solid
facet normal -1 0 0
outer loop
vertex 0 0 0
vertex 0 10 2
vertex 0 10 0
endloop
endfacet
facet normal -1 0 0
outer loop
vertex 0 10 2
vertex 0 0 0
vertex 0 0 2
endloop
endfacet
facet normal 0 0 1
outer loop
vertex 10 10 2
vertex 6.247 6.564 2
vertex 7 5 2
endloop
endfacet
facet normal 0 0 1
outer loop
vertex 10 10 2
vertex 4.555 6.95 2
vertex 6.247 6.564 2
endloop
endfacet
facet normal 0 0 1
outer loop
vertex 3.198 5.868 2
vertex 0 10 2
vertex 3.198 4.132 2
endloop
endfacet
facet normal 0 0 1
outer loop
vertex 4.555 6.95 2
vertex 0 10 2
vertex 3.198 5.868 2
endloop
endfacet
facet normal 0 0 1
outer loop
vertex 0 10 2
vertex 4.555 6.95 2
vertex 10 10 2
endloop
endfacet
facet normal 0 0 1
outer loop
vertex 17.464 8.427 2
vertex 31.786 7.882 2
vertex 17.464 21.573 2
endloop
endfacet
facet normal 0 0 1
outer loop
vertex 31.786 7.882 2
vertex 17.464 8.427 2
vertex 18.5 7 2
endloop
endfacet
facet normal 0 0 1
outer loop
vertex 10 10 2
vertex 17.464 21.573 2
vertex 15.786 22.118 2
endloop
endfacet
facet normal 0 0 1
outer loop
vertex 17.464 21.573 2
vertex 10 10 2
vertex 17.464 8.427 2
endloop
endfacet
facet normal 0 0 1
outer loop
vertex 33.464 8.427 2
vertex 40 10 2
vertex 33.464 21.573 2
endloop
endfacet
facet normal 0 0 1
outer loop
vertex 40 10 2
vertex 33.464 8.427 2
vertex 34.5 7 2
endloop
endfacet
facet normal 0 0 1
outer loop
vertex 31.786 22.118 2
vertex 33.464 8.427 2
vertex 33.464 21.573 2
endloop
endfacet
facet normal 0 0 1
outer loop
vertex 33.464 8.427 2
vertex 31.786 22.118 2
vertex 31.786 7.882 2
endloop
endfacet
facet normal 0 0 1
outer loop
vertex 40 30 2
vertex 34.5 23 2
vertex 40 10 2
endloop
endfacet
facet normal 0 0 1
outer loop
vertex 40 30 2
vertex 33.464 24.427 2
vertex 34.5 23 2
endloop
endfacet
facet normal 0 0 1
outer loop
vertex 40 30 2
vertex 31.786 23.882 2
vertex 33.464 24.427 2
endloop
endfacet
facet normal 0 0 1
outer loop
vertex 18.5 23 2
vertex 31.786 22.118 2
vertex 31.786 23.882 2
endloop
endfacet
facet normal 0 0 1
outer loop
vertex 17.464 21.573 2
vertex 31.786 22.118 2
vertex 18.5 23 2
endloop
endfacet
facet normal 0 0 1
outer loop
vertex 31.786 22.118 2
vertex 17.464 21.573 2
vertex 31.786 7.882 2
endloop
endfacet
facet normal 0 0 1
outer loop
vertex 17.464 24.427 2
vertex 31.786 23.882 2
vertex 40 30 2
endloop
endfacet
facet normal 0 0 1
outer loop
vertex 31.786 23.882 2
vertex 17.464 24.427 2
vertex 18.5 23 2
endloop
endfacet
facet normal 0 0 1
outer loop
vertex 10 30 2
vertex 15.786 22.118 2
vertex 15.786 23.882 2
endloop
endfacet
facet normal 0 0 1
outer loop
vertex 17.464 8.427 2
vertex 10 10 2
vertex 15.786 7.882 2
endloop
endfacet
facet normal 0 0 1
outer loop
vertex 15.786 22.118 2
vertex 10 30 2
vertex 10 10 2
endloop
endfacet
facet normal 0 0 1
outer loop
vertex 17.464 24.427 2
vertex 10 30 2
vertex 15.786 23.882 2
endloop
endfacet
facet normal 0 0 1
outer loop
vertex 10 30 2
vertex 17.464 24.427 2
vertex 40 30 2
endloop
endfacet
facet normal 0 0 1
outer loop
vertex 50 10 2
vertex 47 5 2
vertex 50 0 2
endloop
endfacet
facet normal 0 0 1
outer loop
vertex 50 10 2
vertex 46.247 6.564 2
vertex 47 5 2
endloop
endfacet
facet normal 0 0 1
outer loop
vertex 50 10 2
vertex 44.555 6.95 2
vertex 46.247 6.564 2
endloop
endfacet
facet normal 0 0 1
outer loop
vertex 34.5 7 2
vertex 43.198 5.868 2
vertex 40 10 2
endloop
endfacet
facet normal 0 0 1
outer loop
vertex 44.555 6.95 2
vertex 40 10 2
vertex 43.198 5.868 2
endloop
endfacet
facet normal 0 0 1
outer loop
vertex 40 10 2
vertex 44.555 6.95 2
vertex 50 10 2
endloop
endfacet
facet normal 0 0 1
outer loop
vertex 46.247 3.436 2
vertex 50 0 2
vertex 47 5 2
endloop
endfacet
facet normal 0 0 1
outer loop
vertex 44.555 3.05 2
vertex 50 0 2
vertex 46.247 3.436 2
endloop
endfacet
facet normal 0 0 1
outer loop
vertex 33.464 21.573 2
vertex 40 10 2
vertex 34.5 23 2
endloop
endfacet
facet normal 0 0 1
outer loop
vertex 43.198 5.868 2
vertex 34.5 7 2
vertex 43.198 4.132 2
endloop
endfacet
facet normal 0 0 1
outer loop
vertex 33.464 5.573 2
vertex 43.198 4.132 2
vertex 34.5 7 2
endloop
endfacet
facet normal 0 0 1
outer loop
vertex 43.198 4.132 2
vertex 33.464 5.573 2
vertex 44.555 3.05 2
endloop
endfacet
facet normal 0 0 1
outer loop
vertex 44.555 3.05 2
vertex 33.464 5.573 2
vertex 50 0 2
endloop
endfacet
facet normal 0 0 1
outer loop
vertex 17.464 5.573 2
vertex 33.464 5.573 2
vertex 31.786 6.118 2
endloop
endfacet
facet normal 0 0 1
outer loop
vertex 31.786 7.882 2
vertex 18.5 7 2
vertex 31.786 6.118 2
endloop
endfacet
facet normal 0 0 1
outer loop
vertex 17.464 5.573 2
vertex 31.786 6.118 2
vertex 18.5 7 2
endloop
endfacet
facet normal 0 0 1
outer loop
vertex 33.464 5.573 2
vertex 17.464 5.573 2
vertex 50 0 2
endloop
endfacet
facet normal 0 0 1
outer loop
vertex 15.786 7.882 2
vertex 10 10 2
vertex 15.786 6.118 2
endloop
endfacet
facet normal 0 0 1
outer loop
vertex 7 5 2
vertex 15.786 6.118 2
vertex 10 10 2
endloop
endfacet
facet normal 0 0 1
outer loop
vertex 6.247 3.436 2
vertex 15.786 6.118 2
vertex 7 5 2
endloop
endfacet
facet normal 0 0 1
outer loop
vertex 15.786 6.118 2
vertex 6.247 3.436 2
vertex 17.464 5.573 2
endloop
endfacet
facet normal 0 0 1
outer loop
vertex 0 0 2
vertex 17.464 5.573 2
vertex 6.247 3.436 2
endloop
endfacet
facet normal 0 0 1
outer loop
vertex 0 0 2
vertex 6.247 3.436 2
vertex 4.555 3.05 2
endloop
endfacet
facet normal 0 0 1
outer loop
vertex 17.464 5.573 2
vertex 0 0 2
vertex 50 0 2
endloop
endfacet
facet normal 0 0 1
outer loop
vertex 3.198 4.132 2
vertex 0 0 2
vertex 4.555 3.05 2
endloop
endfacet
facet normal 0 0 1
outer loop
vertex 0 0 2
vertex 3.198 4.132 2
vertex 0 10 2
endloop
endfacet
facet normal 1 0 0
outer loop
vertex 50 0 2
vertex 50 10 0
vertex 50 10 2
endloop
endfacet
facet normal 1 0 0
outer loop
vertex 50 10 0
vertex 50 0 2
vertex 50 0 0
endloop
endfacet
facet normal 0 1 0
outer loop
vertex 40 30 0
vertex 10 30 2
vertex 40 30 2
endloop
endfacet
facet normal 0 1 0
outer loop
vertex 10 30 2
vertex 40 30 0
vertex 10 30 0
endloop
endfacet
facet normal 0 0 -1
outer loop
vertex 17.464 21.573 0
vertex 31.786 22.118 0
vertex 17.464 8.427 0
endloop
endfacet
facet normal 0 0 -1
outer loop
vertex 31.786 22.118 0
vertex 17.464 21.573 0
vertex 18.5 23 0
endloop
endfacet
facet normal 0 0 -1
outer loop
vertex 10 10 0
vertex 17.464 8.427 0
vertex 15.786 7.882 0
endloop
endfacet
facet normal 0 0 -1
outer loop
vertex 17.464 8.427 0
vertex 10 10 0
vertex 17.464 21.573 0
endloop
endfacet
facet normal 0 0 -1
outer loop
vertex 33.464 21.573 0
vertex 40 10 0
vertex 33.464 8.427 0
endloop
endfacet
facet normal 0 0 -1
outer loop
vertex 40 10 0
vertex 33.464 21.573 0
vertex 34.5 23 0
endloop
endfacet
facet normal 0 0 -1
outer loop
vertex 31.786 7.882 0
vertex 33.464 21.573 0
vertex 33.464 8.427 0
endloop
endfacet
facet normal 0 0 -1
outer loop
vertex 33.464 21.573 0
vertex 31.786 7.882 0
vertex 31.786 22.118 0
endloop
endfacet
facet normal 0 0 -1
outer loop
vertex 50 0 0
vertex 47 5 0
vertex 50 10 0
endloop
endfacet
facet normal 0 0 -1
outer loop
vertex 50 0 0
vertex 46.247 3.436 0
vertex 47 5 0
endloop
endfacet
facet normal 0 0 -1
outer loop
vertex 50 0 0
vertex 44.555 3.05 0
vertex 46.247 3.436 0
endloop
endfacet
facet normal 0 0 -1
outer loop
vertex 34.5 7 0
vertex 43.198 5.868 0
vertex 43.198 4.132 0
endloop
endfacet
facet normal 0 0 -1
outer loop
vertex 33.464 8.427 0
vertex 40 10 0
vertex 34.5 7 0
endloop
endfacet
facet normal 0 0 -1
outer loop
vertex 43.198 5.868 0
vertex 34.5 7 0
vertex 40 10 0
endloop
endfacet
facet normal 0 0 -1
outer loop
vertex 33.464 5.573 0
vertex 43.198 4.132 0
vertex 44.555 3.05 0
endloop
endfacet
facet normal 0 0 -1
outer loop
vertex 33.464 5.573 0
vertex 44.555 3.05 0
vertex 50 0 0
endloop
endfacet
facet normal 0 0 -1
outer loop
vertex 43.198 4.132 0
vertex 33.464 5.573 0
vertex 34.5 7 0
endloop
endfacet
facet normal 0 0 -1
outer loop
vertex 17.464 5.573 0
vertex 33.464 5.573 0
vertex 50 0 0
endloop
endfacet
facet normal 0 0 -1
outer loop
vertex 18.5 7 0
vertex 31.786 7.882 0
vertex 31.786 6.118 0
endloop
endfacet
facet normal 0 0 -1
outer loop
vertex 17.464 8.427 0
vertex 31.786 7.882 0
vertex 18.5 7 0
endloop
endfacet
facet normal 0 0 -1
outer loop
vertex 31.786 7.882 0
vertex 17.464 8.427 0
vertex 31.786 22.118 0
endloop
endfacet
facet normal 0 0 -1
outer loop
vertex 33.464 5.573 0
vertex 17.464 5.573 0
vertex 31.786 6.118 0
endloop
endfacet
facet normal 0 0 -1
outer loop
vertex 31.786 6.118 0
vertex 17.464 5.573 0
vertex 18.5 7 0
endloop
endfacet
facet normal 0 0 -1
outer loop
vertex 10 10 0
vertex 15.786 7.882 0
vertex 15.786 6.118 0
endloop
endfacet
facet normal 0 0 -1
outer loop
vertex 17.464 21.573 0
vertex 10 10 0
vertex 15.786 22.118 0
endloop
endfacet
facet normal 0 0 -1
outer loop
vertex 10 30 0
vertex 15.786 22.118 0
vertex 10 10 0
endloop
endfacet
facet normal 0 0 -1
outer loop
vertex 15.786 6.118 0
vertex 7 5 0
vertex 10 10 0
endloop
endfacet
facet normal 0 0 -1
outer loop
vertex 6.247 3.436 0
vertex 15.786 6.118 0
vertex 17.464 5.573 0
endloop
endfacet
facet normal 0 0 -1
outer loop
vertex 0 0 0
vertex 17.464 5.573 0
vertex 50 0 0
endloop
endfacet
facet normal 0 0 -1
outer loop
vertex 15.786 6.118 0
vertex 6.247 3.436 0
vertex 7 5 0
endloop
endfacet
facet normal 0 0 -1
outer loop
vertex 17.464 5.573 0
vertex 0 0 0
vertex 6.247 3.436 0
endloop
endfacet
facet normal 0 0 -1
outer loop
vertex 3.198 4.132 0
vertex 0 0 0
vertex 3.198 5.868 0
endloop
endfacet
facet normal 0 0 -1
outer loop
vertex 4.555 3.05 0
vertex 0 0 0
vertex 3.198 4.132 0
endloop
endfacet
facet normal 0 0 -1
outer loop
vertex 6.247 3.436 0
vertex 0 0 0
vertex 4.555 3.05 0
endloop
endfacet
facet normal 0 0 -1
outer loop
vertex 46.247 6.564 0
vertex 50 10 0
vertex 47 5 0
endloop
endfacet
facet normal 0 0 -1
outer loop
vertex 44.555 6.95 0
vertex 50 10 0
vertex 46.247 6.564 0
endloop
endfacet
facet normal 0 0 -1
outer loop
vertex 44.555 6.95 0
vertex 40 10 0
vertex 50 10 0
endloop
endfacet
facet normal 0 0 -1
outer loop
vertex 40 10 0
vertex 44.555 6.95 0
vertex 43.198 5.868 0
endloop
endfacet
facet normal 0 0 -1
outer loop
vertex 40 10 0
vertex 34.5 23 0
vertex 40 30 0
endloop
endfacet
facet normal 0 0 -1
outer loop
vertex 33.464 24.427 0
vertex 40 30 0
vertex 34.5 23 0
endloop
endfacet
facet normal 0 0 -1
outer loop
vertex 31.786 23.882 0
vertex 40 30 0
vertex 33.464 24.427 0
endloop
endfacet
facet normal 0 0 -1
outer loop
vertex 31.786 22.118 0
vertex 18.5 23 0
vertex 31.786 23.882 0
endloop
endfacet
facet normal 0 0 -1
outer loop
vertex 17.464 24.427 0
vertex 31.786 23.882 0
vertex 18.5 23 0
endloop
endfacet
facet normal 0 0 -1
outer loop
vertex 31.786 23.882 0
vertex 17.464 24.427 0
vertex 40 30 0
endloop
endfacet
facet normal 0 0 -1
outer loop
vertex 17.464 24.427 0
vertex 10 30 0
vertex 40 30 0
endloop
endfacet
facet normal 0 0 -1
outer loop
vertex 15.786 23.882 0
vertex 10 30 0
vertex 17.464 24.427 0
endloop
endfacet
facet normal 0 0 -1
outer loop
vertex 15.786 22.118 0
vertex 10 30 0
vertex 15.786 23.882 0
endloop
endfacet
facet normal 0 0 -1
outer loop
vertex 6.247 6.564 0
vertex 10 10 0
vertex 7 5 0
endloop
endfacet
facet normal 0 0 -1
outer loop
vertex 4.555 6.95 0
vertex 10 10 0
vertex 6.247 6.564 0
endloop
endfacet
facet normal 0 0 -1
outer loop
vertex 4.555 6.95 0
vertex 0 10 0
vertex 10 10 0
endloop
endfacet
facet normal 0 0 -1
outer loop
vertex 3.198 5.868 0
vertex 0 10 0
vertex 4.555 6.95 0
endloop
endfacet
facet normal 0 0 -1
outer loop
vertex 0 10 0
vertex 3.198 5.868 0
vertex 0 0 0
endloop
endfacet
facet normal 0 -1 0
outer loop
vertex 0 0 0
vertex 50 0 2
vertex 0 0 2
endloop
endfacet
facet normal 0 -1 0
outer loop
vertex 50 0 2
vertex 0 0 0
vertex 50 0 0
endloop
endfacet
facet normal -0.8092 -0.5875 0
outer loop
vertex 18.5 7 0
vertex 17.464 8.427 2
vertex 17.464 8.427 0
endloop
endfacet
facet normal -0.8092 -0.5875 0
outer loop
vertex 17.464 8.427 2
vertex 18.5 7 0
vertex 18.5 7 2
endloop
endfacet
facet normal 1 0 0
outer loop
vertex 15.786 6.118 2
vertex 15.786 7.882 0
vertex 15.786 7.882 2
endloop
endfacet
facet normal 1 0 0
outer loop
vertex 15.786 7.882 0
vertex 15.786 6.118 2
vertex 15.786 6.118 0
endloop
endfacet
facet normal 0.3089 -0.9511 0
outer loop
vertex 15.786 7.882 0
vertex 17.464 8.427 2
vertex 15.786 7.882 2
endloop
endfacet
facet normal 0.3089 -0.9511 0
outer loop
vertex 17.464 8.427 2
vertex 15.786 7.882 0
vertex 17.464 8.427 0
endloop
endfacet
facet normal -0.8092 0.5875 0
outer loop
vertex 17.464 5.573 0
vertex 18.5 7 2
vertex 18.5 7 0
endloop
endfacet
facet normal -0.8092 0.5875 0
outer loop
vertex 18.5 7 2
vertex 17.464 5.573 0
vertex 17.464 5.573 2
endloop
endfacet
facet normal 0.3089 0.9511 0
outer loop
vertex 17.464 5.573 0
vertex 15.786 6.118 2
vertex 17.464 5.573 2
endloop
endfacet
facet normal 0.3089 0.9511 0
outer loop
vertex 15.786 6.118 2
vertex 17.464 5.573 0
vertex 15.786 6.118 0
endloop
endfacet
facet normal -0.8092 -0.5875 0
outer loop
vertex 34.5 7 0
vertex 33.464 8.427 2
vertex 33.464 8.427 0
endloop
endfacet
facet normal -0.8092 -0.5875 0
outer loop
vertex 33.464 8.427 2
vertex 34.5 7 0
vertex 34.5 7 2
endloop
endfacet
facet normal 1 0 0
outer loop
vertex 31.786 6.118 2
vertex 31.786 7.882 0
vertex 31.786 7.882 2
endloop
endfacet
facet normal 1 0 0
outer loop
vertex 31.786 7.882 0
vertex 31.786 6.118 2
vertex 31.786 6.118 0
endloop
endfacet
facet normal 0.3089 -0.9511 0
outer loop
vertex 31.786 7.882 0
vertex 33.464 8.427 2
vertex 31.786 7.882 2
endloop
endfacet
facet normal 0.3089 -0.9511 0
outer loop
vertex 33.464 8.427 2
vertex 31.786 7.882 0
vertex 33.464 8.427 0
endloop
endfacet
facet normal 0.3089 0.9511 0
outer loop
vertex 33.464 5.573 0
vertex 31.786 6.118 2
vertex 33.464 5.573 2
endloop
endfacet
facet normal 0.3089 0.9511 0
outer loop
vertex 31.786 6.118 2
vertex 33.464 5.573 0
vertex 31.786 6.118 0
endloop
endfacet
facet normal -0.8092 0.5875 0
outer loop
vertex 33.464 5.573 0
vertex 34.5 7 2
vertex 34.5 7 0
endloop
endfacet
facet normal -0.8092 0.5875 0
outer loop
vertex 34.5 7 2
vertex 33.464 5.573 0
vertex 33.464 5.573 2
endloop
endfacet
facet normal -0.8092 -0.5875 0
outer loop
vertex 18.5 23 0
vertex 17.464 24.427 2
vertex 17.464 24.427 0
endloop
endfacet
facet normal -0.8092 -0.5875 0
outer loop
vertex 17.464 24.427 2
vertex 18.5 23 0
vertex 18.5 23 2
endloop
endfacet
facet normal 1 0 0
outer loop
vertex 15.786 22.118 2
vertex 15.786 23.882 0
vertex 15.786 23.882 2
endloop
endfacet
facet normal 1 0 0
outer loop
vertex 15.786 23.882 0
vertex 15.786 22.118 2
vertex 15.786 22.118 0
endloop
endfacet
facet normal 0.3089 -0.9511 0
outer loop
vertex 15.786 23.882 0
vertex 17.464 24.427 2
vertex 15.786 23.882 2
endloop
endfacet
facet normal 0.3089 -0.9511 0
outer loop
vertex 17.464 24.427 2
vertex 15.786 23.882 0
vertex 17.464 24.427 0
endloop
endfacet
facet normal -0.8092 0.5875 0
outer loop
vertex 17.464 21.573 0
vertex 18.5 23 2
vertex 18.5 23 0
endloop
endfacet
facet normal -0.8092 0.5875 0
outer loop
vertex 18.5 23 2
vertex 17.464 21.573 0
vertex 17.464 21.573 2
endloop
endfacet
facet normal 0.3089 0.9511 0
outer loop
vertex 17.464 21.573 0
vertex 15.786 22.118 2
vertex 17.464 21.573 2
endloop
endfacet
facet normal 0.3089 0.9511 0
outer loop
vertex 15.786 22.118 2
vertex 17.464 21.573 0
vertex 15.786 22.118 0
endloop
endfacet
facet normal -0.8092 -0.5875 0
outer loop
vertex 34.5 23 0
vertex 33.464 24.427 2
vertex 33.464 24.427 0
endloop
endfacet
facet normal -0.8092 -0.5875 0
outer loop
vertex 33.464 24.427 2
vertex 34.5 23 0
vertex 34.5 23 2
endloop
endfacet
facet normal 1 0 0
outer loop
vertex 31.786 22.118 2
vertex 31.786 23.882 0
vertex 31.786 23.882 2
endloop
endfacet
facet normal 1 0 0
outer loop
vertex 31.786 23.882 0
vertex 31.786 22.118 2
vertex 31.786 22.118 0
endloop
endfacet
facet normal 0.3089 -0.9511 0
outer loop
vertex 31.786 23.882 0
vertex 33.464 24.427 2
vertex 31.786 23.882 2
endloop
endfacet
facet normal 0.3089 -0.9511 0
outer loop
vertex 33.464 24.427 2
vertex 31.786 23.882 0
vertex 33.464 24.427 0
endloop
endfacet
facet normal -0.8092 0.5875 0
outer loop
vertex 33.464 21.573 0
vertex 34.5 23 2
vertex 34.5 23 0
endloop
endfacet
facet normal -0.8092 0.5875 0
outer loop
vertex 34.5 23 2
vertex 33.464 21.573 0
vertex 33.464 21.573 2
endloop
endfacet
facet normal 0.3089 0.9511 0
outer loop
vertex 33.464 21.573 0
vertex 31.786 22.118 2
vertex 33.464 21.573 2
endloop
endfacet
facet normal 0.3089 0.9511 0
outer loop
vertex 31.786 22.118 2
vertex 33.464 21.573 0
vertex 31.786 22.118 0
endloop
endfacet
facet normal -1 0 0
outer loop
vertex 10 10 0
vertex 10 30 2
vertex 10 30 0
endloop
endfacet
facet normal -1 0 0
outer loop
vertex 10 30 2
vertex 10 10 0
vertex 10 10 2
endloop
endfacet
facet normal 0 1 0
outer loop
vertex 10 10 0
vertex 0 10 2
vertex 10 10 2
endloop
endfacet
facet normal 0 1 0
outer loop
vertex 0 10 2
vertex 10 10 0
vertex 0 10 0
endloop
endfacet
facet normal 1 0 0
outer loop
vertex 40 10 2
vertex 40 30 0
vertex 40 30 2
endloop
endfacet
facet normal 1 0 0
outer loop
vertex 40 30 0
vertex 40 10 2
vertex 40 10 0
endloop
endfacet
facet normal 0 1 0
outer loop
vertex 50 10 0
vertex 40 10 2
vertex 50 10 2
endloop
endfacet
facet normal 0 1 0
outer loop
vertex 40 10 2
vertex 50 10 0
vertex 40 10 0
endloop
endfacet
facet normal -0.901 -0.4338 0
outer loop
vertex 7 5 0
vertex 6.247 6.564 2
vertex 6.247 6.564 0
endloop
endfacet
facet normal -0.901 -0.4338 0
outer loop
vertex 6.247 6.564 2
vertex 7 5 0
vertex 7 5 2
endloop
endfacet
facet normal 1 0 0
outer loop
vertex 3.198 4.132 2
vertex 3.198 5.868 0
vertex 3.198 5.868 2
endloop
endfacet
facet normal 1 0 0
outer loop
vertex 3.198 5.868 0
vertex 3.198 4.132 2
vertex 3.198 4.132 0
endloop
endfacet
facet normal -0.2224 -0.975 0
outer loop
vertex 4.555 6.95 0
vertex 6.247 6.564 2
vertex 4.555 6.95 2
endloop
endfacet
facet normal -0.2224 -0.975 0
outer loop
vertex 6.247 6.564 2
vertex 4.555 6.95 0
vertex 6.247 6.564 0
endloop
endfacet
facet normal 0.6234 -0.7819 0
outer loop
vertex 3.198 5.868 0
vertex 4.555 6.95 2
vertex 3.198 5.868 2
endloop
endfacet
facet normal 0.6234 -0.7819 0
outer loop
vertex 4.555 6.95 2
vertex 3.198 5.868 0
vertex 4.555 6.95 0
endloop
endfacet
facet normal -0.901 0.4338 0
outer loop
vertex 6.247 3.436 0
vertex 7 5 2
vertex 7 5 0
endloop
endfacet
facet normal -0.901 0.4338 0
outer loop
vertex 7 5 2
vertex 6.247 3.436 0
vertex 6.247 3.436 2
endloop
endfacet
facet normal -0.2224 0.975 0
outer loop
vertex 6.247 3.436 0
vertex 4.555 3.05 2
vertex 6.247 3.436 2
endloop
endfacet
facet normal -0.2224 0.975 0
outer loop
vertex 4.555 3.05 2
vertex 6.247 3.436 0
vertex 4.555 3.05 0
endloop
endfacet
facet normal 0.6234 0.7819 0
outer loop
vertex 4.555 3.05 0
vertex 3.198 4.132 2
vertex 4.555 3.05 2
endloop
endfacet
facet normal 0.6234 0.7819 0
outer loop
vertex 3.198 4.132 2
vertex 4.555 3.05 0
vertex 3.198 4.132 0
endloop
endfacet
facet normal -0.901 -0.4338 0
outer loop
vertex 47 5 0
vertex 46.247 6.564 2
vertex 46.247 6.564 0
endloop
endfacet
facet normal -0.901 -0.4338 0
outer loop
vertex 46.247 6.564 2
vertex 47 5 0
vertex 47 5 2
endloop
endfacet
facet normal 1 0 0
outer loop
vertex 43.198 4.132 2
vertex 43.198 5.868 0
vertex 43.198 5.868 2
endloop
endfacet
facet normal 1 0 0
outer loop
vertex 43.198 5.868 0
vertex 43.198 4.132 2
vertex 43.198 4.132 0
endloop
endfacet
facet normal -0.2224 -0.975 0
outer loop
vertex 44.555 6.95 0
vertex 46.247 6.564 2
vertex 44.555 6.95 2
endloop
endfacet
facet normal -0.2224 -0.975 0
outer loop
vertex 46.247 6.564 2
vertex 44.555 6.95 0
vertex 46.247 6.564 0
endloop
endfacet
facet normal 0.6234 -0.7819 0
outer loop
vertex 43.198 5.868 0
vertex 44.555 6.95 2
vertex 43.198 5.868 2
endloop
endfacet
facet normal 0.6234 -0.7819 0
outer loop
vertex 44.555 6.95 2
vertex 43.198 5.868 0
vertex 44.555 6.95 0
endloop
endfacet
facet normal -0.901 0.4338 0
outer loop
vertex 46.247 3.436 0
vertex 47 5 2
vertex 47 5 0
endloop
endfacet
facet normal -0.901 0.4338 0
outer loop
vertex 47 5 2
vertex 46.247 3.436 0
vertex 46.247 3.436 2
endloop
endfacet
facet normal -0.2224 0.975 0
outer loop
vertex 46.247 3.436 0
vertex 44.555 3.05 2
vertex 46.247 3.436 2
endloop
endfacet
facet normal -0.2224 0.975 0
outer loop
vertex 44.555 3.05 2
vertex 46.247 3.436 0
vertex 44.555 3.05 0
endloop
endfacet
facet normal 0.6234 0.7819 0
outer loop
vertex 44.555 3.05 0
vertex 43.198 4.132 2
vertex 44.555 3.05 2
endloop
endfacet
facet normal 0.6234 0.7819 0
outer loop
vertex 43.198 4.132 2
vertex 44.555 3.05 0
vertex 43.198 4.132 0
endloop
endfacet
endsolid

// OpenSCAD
width=30;
height=30;
depth=2;
wing=10;

difference() {
    // baseplate
    cube([width+(wing*2),height,depth]);

    translate([wing+7,7,0]){
      cylinder(r=1.5, h=height);
    }

    translate([width+wing-7,7,0]){
      cylinder(r=1.5, h=height);
    }

    translate([wing+7,height-7,0]){
      cylinder(r=1.5, h=height);
    }

    translate([width+wing-7,height-7,0]){
      cylinder(r=1.5, h=height);
    }
    
    translate([0,wing,0]) {
        cube([wing, height-wing, 2]);
    }

    translate([width+wing,wing,0]) {
        cube([wing, height-wing, 2]);
    }

    translate([wing/2,wing/2,0]){
      cylinder(r=2, h=height);
    }

    translate([(width+wing)+(wing/2), wing/2,0]){
      cylinder(r=2, h=height);
    }
}
